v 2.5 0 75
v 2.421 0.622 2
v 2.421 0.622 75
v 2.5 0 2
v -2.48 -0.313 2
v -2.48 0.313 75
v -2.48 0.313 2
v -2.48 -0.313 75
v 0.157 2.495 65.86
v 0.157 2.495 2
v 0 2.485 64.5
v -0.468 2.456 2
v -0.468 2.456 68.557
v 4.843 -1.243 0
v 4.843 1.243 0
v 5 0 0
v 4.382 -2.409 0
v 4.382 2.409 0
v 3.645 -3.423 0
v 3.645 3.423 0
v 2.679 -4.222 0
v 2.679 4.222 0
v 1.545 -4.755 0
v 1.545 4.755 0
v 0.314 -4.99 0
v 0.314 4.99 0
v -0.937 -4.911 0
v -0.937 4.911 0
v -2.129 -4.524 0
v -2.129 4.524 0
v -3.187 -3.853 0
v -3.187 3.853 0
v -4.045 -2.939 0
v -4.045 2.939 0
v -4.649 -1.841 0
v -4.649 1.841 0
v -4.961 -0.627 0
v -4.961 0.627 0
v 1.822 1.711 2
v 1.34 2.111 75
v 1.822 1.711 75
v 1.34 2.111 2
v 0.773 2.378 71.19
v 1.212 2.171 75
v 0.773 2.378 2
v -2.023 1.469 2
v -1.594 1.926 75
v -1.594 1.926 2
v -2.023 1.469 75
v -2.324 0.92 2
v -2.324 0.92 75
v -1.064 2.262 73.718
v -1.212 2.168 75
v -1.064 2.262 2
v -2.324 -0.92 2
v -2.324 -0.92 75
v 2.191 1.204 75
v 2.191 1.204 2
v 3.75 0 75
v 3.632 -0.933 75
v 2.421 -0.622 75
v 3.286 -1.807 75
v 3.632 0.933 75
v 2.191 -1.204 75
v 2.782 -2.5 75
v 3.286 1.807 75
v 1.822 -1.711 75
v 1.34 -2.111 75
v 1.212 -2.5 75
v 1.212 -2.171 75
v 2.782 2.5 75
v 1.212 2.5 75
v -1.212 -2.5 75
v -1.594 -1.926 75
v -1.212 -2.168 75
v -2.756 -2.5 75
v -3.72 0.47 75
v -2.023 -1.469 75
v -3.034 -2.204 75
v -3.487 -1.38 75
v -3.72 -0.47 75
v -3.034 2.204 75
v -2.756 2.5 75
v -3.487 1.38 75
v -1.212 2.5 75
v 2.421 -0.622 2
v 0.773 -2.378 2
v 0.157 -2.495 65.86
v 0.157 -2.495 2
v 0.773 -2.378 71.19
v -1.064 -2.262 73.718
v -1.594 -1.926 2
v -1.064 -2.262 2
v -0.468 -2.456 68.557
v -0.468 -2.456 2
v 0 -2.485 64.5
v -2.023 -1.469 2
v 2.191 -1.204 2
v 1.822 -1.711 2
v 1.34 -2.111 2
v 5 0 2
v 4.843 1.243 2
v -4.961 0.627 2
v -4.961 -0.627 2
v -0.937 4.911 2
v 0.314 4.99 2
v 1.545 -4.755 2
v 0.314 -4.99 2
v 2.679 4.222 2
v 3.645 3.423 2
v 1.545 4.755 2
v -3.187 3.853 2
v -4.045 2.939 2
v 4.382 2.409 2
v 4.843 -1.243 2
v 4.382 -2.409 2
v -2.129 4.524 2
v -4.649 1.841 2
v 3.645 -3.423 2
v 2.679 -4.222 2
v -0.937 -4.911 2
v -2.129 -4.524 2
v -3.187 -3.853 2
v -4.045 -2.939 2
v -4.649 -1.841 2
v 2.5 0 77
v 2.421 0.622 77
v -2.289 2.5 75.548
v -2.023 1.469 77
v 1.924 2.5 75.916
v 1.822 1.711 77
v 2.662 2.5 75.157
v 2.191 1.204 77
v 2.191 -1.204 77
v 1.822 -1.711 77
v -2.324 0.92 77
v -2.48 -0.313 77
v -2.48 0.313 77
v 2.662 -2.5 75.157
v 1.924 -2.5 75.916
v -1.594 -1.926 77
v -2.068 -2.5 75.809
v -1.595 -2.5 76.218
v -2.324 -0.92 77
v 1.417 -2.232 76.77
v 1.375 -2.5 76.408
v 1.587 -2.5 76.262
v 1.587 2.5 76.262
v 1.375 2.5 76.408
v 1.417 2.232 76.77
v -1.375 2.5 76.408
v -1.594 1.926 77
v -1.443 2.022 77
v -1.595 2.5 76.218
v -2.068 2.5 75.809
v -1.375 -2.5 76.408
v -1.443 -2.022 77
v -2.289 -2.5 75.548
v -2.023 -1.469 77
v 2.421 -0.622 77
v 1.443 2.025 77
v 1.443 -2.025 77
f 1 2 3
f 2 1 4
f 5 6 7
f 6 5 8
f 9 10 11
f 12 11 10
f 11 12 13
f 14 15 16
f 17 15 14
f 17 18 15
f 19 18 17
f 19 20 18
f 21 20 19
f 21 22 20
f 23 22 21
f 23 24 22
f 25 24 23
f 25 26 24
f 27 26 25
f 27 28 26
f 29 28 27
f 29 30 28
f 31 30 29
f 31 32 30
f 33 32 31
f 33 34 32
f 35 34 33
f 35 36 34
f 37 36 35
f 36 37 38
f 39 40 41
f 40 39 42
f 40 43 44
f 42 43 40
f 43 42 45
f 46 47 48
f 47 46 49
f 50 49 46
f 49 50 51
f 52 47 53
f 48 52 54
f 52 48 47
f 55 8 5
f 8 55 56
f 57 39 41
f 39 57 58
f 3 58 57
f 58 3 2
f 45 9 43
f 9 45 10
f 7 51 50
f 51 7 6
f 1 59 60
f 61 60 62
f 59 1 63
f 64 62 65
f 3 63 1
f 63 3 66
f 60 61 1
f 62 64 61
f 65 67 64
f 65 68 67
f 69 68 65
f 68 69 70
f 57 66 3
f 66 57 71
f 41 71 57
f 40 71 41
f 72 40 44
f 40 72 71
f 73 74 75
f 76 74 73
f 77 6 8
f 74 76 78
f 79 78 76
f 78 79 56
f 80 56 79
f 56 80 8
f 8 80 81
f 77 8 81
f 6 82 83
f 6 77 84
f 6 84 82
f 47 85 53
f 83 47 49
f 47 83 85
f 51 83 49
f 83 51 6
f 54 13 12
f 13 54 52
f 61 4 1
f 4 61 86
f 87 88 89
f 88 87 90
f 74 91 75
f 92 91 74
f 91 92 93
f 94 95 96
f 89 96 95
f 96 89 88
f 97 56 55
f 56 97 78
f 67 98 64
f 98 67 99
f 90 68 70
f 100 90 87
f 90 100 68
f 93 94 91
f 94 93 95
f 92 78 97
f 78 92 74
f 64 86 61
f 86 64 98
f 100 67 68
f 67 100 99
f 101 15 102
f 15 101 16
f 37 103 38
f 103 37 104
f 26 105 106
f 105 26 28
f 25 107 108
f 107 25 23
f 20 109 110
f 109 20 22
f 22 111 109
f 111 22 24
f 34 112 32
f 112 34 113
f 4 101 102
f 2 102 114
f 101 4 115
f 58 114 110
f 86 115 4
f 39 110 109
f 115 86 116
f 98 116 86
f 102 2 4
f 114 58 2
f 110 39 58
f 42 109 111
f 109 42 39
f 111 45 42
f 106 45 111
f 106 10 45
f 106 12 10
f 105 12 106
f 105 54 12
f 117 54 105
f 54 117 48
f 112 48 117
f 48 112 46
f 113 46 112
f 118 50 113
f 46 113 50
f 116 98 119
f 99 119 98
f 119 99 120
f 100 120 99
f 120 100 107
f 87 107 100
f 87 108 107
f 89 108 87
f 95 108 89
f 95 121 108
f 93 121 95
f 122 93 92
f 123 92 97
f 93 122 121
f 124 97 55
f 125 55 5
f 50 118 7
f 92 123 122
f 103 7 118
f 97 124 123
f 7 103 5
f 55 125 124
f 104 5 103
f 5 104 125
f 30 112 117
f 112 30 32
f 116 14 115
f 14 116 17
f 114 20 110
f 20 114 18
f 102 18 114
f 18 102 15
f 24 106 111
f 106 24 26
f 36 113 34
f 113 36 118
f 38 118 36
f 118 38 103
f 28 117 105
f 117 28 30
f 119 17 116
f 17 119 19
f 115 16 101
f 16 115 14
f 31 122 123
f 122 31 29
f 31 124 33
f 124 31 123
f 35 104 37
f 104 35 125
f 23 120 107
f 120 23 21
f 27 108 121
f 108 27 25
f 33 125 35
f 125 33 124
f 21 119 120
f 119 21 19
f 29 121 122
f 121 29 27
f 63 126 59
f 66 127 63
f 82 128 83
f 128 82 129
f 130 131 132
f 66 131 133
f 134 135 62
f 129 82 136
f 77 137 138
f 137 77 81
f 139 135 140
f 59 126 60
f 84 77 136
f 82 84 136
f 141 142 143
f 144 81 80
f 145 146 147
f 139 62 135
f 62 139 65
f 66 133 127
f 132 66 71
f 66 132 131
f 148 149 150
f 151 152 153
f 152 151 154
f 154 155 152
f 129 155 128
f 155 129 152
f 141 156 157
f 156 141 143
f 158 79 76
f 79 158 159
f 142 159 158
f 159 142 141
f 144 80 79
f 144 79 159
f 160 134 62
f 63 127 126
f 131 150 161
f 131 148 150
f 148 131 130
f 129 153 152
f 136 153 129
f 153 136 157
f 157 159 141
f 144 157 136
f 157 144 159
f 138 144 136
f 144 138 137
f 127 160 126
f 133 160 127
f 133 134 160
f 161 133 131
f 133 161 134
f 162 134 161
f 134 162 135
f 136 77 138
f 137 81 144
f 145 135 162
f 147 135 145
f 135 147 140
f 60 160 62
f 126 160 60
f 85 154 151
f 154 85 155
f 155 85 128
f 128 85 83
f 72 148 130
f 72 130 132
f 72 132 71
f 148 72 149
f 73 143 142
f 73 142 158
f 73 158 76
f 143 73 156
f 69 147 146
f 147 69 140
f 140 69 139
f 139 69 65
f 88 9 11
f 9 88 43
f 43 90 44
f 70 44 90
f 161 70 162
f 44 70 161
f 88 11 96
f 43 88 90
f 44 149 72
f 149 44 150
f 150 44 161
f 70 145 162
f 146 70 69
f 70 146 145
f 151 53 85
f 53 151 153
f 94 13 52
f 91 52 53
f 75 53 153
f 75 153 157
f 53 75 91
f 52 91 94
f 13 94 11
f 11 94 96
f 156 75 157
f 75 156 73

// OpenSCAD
quality=25;

pin_radius=2.5;
pin_length=75;

backing_thickness=2;



difference()
{
    union()
    {
        cylinder(r=pin_radius,h=pin_length,$fn=quality);
        cylinder(r=pin_radius*2,h=backing_thickness,$fn=quality);
        
        //bell clip
        translate([0,0,pin_length]) cylinder(r1=pin_radius*1.5,r2=pin_radius,h=backing_thickness,$fn=quality);
    }
    union()
    {
        translate([0,pin_radius*1.5,pin_length+backing_thickness]) scale([1,1,5]) rotate([90,90,0]) cylinder(r=pin_radius,h=pin_radius*3,$fn=3);
        rotate([0,0,90]) union()
        {
            translate([pin_radius,-pin_radius*1.5,pin_length]) cube([pin_radius,pin_radius*3,pin_radius]);
            rotate([0,0,180]) translate([pin_radius,-pin_radius*1.5,pin_length]) cube([pin_radius,pin_radius*3,pin_radius]);
        }
    }
}
